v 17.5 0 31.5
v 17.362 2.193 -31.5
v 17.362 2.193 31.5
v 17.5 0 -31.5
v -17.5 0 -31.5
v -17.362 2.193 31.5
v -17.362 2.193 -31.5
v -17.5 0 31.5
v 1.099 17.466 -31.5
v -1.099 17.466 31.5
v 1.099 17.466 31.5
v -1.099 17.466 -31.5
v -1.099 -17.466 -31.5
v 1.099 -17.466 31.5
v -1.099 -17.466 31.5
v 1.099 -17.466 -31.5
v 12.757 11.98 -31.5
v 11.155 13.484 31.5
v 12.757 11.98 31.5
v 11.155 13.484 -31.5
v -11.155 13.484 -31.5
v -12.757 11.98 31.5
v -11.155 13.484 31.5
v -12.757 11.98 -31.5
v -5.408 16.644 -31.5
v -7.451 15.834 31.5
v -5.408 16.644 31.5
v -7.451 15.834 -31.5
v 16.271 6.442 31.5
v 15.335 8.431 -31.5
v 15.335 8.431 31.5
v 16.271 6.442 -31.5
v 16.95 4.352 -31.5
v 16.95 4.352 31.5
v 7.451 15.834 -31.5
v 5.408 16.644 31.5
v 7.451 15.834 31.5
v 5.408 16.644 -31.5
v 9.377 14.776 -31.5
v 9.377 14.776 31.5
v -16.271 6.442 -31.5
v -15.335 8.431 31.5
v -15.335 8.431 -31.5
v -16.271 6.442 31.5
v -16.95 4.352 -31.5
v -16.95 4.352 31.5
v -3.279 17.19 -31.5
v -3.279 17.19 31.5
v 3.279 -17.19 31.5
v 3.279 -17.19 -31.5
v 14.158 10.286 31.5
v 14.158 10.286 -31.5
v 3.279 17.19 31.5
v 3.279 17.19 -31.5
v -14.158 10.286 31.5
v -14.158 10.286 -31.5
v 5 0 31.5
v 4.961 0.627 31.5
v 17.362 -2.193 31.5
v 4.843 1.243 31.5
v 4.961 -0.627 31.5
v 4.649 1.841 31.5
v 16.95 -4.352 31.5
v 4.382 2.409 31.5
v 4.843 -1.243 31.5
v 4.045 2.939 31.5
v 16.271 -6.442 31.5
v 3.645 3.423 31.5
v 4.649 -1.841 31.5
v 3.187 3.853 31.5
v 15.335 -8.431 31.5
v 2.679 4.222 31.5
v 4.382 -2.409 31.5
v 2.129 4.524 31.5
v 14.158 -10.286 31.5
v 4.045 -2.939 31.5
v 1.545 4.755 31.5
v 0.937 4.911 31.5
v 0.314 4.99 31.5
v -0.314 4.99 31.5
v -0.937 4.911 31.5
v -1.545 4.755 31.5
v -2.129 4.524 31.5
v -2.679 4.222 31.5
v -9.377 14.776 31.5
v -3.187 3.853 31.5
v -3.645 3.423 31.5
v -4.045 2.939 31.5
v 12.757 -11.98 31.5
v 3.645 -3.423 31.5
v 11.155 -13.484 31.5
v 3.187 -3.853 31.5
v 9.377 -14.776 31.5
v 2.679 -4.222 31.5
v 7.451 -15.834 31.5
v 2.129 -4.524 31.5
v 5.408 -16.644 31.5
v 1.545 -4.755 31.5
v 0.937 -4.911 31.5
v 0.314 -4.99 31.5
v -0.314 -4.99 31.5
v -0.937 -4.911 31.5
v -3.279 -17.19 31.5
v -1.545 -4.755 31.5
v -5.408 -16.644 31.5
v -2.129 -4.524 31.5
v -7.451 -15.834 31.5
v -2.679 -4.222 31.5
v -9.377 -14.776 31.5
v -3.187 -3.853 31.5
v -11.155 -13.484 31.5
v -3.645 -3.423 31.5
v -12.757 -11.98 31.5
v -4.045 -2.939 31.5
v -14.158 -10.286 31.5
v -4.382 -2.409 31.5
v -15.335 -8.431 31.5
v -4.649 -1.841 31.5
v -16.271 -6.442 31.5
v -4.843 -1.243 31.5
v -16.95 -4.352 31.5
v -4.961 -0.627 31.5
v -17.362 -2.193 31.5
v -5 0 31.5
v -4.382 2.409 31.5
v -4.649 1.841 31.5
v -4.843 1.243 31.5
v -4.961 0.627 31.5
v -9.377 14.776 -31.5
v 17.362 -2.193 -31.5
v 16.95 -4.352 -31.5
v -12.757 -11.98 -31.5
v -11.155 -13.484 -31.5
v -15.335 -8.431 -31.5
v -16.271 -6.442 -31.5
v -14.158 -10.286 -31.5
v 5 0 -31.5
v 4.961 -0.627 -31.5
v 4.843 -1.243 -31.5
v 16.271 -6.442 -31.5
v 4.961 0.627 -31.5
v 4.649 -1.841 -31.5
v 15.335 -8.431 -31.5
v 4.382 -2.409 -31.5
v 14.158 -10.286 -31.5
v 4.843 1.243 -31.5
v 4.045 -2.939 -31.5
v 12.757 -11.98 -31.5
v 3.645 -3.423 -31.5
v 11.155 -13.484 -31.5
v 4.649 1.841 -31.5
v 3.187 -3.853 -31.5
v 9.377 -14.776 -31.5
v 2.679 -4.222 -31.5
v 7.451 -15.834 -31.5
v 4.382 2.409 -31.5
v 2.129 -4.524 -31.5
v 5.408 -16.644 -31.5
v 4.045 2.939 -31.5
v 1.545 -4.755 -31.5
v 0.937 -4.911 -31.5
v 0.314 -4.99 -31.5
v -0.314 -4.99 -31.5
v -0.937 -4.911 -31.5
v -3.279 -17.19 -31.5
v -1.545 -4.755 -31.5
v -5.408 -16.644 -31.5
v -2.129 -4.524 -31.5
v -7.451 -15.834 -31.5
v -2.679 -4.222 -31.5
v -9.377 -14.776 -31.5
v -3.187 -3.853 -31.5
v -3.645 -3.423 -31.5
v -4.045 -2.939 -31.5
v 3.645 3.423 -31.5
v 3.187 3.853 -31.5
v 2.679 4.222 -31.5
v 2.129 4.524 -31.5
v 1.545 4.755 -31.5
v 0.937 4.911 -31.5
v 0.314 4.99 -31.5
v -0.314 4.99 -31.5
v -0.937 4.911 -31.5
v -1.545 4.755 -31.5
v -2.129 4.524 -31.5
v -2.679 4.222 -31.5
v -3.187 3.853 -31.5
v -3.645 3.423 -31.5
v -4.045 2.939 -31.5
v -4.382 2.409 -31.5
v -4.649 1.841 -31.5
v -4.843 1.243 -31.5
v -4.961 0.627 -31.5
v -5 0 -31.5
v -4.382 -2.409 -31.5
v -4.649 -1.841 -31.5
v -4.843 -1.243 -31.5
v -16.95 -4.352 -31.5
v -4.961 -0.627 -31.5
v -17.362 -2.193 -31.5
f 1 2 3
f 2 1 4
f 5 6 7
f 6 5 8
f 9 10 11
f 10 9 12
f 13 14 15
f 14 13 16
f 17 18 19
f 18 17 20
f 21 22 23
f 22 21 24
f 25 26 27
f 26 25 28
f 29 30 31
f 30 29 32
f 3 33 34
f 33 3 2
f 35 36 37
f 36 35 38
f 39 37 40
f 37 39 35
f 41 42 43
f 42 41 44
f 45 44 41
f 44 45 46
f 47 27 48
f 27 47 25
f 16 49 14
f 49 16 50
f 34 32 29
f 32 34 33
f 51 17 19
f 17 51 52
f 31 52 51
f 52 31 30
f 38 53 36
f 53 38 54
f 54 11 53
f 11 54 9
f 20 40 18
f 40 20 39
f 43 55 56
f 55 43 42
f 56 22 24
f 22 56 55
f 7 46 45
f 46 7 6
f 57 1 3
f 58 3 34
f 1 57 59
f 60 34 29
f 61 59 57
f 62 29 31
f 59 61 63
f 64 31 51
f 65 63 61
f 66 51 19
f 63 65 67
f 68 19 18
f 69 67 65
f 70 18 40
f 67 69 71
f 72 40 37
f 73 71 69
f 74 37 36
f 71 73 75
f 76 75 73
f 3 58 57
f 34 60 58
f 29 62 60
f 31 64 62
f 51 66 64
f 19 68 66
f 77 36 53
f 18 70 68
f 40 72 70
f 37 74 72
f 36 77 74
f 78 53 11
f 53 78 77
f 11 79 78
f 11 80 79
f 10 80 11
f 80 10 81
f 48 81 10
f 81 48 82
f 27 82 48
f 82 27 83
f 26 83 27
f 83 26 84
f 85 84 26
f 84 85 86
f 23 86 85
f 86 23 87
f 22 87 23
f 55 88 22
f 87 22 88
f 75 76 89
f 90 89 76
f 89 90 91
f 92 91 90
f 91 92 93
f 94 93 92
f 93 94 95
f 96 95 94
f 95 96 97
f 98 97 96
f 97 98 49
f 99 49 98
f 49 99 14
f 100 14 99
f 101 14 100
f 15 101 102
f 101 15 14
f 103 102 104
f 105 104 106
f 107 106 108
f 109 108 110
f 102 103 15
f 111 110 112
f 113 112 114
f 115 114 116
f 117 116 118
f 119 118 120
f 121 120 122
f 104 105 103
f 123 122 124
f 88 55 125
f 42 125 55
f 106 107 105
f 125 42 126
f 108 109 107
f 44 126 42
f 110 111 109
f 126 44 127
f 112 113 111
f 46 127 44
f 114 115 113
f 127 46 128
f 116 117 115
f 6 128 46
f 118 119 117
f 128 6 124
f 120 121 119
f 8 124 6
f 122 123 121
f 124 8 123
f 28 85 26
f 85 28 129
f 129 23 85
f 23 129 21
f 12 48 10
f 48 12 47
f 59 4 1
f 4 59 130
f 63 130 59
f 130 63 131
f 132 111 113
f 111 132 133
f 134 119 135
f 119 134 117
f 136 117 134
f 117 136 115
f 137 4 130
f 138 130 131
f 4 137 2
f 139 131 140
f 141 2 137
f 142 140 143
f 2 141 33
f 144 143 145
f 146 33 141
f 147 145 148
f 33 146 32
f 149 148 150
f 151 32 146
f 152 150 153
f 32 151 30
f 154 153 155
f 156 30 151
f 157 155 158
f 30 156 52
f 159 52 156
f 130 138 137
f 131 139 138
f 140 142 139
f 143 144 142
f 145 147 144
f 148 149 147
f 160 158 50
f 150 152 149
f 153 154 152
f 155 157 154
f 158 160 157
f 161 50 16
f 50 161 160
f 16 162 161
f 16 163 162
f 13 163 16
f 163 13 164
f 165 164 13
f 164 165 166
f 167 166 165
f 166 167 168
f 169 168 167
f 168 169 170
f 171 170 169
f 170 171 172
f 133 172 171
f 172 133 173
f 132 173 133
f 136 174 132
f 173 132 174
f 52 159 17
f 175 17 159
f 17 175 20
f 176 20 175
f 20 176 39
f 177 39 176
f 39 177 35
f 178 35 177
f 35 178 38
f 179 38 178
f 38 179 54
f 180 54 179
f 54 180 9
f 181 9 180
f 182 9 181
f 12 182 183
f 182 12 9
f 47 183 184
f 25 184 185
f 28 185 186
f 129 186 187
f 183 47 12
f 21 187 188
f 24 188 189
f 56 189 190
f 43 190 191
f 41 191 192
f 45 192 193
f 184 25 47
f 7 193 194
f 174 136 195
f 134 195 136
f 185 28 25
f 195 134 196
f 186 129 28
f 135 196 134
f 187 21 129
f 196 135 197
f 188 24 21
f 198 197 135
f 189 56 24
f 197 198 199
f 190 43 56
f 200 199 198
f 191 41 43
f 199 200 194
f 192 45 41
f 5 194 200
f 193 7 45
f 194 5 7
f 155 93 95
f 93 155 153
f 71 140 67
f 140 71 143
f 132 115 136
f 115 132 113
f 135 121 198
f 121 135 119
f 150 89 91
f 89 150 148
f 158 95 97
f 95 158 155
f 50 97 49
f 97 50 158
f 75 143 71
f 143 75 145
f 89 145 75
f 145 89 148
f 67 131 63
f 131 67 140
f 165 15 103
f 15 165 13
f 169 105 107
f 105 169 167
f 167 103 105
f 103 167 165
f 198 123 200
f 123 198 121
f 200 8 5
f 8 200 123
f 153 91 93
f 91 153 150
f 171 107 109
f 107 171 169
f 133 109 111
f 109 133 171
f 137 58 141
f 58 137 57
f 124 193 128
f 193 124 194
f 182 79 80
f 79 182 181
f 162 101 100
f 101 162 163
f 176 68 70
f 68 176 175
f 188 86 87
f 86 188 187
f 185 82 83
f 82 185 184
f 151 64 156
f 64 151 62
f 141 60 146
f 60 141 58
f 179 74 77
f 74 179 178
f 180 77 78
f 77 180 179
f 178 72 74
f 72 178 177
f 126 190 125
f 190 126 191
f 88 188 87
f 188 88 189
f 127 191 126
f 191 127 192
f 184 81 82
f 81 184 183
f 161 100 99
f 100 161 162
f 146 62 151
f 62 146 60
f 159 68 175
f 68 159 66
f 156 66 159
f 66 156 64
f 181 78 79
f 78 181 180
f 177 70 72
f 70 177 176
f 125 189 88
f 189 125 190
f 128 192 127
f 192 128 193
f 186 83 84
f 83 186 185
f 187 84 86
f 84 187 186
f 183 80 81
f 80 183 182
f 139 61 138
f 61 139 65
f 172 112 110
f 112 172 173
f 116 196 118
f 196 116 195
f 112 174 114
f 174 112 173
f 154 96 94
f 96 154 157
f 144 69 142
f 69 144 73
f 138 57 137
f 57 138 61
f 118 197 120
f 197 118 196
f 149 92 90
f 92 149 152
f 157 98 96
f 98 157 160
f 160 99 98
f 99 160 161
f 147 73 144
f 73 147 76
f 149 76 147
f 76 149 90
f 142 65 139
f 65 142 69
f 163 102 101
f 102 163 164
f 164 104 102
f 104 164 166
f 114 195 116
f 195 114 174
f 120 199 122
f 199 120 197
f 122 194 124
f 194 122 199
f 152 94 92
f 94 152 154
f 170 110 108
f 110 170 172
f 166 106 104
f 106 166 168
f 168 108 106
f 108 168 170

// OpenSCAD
$fn = 50;


difference() {
	union() {
		translate(v = [0, 0, -31.5000000000]) {
			cylinder(h = 63, r = 17.5000000000);
		}
	}
	union() {
		translate(v = [0, 0, -100.0000000000]) {
			cylinder(h = 200, r = 5);
		}
	}
}
